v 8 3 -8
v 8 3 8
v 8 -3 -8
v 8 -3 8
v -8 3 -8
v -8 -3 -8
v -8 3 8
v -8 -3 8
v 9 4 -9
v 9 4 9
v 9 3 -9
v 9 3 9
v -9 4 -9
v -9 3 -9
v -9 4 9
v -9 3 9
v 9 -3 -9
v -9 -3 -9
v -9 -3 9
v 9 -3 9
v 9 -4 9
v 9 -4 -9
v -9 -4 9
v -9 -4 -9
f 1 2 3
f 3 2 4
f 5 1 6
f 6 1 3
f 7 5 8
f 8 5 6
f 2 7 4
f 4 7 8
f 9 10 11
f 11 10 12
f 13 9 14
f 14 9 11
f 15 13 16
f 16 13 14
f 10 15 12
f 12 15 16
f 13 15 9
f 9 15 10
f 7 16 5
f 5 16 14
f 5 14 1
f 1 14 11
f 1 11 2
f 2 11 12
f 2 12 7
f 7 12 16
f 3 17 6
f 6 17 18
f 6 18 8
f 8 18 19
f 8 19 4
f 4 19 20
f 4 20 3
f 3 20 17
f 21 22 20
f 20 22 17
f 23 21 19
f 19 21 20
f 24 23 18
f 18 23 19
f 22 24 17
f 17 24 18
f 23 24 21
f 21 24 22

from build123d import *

# Parameters (mm, degrees)
SKETCH_1_W      = 16
SKETCH_1_H      = 16
EXTRUDE_1_DEPTH = 3
SKETCH_2_W      = 18
SKETCH_2_H      = 18
EXTRUDE_2_DEPTH = 1


with BuildPart() as part:
    # Эскиз1 → Бобышка-Вытянуть1 (new, symmetric)
    with BuildSketch(Plane(origin=(0, 0, 0), x_dir=(1, 0, 0), z_dir=(0, 1, 0))):
        Rectangle(SKETCH_1_W, SKETCH_1_H)
    extrude(amount=EXTRUDE_1_DEPTH, both=True)

    # Эскиз2 → Бобышка-Вытянуть2 (add)
    with BuildSketch(Plane(origin=(0, 3, 0), x_dir=(1, 0, 0), z_dir=(0, 1, 0))):
        Rectangle(SKETCH_2_W, SKETCH_2_H)
    extrude_2 = extrude(amount=EXTRUDE_2_DEPTH)

    # Зеркальное отражение1: Бобышка-Вытянуть2 across plane
    add(extrude_2.mirror(Plane.ZX))


solid = part.part
